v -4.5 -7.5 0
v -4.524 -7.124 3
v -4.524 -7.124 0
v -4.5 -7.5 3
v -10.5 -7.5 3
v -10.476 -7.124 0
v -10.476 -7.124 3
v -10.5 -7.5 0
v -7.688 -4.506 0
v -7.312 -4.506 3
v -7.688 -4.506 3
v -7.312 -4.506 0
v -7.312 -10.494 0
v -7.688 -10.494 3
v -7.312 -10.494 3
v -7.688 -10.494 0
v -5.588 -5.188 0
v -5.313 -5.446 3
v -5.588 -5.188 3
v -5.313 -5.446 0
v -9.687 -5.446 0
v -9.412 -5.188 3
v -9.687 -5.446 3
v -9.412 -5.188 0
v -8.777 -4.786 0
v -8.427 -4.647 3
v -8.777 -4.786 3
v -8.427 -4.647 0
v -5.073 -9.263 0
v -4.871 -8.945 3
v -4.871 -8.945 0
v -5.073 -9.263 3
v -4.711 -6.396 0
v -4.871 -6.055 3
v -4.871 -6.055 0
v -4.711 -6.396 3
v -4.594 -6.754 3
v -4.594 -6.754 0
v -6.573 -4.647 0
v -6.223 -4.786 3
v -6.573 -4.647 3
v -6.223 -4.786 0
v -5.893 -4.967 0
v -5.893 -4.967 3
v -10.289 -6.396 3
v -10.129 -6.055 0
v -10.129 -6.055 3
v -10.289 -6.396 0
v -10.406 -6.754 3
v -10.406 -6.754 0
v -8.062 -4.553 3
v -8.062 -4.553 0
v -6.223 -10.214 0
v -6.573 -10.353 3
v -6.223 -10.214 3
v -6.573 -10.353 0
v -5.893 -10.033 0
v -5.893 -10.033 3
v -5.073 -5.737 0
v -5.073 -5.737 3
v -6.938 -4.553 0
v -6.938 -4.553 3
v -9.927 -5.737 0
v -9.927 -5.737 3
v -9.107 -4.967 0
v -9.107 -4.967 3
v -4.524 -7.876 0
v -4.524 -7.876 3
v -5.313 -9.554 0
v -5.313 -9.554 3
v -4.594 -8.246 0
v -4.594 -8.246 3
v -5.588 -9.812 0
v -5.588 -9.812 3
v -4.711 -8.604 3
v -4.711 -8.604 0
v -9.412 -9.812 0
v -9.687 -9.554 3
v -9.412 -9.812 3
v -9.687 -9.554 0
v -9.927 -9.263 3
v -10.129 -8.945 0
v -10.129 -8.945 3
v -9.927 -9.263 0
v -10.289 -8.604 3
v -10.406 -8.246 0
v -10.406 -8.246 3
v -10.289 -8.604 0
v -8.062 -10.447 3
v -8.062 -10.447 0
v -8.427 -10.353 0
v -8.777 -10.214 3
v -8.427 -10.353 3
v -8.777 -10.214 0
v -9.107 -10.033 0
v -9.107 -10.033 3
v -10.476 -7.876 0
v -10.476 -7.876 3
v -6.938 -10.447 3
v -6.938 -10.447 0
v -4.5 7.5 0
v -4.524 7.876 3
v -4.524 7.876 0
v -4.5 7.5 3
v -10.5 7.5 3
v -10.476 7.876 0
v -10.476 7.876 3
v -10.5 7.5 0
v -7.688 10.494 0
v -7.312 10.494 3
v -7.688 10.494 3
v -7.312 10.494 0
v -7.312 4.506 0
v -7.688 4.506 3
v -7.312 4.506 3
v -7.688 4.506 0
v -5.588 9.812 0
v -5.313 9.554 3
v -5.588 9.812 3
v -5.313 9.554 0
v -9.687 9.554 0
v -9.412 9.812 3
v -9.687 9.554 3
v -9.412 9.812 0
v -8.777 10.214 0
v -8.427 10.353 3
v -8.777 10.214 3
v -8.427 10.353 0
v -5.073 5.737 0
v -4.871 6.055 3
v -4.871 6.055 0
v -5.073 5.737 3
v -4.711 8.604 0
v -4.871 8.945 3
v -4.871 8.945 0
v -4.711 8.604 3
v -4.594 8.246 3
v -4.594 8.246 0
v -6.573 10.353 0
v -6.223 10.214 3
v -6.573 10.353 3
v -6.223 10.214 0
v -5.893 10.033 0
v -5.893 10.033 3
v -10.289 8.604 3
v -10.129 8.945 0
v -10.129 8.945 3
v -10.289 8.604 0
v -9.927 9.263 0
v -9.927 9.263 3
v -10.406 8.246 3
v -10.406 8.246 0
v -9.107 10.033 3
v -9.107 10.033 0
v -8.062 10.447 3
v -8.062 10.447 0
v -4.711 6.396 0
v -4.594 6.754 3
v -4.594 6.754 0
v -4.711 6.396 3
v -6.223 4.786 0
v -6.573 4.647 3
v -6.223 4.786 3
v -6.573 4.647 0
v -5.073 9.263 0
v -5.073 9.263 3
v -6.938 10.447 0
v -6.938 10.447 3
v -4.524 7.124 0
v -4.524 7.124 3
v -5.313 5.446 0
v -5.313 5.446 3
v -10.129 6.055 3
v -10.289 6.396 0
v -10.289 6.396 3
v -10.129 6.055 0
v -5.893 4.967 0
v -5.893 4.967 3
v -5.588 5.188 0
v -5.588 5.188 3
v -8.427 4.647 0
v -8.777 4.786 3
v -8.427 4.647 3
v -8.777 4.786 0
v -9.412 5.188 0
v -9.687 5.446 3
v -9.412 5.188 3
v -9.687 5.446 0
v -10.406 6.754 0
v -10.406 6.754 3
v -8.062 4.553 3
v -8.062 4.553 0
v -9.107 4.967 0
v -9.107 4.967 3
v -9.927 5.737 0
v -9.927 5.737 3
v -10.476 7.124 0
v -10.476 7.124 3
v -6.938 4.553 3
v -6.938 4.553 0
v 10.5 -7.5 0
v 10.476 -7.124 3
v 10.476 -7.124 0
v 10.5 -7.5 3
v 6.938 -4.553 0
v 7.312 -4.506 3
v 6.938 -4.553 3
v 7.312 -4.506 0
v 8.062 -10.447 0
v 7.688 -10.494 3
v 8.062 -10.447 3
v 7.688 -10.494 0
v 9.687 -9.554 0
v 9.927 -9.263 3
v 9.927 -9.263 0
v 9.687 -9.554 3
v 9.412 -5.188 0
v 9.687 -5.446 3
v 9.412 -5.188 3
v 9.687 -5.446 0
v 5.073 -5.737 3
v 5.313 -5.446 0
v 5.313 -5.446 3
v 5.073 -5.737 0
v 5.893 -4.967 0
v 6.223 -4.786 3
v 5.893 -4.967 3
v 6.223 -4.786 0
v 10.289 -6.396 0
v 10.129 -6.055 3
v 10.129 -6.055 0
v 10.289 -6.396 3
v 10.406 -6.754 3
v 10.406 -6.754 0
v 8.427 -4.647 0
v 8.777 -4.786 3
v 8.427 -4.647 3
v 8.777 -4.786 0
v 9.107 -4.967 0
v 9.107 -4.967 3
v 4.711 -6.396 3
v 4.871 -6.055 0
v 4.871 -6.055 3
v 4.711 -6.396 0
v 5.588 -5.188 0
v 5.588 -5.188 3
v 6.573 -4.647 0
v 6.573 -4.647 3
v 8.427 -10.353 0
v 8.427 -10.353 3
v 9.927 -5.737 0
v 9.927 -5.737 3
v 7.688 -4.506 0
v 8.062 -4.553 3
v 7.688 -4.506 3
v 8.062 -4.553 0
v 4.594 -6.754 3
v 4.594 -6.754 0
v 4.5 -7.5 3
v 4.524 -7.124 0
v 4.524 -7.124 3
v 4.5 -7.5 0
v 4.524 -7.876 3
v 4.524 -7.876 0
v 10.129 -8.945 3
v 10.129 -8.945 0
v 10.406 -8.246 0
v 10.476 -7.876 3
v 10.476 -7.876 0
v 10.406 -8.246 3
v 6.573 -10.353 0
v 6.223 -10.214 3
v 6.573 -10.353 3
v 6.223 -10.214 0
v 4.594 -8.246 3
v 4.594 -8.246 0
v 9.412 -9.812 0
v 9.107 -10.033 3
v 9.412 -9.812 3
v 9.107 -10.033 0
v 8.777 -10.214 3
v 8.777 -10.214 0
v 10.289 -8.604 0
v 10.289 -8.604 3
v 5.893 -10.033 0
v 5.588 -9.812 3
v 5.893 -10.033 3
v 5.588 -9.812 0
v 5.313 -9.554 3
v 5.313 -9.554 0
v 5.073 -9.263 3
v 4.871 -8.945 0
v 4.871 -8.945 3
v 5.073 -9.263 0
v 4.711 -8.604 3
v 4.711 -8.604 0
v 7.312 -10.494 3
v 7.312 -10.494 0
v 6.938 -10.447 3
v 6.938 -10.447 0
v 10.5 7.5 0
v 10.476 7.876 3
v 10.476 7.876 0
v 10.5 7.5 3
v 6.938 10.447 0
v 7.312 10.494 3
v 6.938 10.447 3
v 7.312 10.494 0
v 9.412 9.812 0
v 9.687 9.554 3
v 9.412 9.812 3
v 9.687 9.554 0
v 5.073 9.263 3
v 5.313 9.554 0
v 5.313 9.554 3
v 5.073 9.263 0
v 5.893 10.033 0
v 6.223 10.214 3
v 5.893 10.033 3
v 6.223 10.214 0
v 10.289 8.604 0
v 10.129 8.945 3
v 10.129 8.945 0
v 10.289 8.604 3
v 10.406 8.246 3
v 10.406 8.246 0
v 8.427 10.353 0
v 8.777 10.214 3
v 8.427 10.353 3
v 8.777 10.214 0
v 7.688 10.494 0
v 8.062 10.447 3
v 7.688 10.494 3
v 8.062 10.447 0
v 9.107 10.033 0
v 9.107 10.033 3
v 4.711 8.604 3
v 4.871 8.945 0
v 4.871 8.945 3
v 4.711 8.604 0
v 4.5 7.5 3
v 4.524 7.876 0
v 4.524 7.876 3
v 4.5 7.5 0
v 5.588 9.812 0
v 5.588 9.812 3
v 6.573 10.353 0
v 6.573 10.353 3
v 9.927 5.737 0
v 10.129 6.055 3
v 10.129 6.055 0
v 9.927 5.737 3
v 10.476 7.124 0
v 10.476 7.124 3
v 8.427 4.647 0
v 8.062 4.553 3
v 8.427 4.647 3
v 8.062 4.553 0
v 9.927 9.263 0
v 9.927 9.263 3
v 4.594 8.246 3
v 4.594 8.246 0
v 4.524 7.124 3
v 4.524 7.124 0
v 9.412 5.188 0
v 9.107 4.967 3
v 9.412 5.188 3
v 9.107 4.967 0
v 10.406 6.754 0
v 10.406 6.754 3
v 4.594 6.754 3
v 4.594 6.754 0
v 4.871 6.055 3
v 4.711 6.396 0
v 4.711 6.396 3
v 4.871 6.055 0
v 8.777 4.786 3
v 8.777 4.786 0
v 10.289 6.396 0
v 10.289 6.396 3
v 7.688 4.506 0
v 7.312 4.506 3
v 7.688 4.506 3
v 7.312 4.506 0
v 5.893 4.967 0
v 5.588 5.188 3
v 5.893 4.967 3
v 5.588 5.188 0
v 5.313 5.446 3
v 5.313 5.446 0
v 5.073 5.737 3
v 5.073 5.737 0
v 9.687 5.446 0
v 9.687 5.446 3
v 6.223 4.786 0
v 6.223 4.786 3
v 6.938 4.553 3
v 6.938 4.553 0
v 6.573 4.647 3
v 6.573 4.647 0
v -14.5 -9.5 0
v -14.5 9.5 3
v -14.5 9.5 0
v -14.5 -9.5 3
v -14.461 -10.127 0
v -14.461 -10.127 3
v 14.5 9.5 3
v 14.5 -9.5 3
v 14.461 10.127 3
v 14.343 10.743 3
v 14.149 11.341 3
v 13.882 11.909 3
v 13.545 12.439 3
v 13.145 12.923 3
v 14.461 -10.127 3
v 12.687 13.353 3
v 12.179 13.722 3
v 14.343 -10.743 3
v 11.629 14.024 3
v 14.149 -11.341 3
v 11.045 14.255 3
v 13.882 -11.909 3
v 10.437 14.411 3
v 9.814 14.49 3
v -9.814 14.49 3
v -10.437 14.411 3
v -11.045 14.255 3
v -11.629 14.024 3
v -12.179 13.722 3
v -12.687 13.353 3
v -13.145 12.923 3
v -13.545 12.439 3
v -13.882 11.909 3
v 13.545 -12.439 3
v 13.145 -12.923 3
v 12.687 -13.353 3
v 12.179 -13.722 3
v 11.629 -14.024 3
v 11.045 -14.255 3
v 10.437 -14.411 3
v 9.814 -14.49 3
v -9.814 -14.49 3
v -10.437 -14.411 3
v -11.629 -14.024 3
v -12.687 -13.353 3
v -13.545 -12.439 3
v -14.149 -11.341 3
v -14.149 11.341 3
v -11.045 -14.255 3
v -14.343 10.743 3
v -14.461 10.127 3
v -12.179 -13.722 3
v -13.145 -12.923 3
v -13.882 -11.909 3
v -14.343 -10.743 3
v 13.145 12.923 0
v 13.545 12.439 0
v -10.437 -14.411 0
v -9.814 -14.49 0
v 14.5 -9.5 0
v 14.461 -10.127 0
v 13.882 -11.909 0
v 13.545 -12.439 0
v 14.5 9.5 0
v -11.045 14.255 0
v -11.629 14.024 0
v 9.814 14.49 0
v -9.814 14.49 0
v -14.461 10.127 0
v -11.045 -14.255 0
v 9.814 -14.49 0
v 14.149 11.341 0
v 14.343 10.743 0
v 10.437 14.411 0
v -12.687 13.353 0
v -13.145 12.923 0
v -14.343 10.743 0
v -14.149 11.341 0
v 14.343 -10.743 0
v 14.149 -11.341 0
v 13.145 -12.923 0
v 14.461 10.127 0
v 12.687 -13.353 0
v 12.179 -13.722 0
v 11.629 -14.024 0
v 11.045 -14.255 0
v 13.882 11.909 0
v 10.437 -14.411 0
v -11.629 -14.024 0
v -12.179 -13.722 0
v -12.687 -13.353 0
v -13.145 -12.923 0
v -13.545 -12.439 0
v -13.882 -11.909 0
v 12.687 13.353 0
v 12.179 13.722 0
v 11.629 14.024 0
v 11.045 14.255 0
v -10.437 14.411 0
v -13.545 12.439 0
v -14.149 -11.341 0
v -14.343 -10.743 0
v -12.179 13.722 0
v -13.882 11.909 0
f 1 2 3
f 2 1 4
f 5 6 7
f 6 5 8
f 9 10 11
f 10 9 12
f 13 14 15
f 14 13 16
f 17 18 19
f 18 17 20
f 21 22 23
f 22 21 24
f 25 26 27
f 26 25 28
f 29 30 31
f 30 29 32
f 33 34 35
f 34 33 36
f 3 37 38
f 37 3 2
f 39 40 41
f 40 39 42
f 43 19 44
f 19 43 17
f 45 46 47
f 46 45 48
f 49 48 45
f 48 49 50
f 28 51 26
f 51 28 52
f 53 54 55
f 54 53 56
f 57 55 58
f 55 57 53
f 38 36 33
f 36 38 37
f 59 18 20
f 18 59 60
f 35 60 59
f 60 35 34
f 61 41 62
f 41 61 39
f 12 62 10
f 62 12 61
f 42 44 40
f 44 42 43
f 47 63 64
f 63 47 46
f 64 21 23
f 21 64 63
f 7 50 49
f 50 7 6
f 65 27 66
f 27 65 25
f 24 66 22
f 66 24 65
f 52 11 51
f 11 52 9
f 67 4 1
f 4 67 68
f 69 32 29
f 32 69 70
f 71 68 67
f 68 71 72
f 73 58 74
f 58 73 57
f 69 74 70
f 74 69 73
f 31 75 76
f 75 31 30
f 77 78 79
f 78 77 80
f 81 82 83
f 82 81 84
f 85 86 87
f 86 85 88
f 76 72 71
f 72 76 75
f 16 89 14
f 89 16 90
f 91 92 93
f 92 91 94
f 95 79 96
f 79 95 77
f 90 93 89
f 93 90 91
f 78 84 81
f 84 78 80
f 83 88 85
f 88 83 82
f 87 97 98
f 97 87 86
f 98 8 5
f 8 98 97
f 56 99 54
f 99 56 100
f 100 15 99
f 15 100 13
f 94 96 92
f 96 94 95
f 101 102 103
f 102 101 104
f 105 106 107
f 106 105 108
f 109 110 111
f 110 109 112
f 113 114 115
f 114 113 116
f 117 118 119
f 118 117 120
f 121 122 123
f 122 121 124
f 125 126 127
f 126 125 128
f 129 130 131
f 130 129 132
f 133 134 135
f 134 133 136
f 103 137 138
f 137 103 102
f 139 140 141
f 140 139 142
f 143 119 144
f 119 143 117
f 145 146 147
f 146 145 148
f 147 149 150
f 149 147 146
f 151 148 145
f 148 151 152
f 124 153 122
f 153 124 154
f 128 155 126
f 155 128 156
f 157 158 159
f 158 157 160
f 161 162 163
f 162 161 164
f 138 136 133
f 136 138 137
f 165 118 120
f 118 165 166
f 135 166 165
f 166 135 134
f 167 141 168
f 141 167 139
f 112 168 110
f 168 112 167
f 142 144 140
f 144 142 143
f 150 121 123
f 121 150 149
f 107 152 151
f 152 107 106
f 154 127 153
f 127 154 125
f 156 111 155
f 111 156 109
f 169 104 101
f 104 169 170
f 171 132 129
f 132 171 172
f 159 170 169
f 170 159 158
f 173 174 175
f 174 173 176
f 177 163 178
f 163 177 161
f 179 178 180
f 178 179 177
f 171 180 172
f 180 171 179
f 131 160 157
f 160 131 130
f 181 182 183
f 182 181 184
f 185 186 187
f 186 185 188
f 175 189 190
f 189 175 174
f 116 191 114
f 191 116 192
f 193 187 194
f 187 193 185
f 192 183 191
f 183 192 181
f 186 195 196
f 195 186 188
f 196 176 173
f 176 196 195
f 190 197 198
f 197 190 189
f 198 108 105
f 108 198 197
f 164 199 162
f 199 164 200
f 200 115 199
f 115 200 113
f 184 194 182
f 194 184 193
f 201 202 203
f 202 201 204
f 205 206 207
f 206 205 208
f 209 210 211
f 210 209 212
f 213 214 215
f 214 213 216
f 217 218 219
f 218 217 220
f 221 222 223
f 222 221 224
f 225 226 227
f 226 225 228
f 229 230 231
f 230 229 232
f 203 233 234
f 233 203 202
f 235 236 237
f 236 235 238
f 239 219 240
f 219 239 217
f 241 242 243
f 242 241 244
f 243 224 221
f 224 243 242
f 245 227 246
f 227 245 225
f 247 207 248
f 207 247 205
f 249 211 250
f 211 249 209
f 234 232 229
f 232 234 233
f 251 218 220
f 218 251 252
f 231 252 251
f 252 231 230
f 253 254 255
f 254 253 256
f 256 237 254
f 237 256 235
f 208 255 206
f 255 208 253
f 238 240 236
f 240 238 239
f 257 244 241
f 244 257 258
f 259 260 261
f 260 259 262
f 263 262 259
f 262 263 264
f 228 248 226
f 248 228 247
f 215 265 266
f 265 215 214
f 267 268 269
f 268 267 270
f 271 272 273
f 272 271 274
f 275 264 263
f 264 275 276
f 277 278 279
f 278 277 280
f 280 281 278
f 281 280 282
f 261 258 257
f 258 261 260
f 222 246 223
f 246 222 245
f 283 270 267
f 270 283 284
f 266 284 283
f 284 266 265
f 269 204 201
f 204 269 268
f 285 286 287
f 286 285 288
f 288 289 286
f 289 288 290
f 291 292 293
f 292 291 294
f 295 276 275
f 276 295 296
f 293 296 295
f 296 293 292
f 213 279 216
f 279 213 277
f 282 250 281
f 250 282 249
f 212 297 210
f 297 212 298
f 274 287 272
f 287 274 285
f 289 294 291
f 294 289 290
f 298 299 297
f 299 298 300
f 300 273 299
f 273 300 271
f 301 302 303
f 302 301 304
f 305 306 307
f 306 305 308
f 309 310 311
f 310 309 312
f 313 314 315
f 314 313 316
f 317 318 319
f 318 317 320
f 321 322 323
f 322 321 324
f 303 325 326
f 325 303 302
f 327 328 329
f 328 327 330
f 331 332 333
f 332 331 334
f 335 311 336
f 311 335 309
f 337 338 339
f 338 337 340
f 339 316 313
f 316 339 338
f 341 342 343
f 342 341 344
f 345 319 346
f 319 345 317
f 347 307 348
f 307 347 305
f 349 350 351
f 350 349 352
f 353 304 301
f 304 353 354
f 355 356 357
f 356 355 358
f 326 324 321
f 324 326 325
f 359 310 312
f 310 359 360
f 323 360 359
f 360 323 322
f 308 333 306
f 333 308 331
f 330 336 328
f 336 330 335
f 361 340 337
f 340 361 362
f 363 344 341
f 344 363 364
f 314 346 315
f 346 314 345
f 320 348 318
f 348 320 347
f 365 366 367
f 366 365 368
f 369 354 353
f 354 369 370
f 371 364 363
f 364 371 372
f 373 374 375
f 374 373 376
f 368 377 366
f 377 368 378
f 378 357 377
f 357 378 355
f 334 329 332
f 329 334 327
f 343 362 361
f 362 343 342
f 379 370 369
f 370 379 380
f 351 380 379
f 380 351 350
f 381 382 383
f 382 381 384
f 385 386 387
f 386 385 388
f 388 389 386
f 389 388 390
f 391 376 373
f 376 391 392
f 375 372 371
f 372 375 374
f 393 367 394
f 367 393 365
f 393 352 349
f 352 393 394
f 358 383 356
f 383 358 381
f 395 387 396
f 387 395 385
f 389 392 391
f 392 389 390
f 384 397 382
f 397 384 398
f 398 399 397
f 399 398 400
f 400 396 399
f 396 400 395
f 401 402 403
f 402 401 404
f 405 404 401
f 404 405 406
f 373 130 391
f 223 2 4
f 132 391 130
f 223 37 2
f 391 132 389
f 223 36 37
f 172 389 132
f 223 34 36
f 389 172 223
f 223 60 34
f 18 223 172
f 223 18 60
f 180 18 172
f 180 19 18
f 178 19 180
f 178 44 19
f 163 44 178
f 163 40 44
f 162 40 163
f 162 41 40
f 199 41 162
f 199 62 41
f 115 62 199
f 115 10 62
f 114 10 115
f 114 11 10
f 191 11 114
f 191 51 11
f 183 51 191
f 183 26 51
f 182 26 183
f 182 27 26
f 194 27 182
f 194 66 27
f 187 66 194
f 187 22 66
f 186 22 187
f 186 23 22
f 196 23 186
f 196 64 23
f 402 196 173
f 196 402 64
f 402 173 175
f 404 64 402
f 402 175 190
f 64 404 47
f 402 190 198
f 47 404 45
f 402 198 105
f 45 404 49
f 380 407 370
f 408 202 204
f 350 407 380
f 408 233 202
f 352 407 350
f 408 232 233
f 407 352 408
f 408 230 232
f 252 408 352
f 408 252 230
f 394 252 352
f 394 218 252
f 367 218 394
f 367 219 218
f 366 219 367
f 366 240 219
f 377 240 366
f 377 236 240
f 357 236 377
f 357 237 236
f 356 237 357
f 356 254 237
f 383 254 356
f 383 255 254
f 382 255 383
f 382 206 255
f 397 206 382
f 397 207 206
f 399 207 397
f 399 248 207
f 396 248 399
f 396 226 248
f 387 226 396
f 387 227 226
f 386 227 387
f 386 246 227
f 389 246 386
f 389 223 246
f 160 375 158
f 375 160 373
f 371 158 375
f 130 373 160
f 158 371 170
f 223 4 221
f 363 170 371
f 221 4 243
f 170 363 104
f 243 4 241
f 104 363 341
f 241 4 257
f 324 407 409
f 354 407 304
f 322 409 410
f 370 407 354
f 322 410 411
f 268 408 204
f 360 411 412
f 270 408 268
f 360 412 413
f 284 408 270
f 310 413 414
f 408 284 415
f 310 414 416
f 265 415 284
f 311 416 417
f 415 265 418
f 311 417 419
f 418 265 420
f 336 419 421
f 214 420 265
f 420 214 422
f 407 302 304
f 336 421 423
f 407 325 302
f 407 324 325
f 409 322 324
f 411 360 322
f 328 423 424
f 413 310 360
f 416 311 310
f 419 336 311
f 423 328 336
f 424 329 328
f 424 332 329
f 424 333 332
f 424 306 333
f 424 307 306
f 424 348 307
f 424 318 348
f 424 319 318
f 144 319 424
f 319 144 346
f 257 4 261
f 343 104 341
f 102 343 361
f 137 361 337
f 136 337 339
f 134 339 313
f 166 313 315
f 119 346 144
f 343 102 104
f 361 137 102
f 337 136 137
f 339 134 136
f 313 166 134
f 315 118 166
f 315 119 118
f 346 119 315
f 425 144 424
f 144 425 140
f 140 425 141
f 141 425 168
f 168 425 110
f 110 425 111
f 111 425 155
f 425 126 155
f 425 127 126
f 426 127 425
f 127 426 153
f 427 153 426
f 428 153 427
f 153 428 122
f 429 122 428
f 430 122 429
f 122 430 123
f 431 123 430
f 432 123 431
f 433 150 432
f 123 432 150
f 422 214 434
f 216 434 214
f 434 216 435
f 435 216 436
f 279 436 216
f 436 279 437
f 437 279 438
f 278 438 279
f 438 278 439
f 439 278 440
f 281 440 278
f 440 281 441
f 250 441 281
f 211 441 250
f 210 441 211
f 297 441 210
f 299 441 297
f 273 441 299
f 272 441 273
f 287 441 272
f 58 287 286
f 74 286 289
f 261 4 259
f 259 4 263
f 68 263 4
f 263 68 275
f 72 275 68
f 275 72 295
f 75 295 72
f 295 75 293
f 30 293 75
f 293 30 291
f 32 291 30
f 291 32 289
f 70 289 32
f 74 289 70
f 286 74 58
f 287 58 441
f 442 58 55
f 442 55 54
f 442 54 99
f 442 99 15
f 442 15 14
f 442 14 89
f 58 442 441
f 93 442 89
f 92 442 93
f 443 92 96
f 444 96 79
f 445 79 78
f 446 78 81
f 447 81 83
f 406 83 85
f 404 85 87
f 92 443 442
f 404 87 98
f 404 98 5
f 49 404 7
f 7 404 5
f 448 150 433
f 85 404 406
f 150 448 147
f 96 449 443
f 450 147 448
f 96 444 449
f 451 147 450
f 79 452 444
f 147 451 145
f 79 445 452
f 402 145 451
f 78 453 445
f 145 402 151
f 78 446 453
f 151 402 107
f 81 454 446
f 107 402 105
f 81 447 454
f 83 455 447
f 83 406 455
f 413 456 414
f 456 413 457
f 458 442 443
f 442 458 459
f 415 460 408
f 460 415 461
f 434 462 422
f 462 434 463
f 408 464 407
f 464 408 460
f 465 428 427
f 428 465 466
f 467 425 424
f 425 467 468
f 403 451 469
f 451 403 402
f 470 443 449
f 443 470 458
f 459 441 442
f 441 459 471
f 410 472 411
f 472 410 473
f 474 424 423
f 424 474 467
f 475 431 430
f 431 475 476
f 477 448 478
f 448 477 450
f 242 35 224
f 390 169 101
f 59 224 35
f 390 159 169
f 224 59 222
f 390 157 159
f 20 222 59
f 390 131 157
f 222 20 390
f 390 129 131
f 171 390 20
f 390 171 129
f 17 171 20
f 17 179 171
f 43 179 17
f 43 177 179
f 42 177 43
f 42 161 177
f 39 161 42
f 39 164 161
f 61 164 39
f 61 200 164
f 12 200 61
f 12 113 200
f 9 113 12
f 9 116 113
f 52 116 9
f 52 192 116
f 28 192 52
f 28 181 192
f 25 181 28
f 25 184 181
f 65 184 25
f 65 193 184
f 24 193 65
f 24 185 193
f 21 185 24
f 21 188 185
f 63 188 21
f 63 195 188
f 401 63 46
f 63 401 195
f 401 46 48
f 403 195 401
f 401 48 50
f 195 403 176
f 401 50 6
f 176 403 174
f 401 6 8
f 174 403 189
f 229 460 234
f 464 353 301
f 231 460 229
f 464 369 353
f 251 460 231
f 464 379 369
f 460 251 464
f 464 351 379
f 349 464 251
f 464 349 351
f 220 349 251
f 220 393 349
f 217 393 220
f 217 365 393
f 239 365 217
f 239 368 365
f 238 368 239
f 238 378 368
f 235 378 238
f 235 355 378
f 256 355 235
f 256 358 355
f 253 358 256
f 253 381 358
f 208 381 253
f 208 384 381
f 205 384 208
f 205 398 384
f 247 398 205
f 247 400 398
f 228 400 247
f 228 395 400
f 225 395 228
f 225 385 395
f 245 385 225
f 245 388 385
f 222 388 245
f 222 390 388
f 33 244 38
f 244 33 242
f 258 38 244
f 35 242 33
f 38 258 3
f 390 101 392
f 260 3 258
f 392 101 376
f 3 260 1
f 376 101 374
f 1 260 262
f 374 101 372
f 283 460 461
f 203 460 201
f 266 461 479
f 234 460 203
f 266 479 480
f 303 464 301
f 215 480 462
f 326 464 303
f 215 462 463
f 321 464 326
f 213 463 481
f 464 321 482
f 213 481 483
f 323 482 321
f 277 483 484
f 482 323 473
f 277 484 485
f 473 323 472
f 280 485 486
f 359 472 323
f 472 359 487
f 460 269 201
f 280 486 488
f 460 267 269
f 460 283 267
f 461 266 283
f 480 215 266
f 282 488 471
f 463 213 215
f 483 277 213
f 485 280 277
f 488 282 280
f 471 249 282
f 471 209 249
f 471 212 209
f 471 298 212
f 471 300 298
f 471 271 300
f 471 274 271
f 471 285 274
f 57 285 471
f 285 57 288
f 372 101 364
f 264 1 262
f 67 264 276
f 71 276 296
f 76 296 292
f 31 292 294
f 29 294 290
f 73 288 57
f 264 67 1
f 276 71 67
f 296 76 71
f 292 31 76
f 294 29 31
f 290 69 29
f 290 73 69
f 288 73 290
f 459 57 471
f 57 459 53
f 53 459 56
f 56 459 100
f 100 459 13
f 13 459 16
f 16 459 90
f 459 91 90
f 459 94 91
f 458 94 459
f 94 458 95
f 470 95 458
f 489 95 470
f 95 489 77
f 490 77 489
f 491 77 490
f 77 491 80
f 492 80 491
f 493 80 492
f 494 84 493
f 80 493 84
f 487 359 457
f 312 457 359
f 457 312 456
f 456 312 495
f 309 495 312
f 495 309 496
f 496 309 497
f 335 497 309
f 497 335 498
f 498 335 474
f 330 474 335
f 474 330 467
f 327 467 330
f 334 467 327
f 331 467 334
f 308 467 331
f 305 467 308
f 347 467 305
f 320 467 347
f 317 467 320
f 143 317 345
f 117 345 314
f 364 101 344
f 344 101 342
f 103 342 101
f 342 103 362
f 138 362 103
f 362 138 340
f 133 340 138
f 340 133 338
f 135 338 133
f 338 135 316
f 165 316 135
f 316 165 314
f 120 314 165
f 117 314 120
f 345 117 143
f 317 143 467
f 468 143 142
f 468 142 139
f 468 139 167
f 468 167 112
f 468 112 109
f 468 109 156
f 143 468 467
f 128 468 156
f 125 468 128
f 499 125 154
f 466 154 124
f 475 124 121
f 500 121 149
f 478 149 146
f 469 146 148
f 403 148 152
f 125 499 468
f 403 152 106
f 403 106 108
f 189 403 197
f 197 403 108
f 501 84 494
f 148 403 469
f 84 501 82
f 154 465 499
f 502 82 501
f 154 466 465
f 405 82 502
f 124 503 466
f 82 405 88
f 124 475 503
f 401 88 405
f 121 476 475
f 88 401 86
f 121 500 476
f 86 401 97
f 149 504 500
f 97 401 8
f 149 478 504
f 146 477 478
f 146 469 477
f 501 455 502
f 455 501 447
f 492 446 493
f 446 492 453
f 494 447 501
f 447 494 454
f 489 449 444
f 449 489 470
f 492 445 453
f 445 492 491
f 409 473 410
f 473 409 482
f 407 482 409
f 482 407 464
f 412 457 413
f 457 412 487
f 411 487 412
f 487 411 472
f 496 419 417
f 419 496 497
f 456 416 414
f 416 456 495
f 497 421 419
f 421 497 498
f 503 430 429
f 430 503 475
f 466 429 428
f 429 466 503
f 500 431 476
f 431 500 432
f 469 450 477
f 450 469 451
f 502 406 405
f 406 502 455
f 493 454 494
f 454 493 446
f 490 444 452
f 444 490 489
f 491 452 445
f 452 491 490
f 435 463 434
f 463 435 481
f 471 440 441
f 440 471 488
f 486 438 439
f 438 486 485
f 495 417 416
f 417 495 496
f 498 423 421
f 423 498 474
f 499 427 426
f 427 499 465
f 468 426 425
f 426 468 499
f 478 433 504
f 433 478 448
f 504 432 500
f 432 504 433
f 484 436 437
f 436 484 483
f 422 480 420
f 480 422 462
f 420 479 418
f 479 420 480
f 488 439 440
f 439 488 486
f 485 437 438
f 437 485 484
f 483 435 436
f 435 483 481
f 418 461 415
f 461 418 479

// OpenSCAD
$fn = 50;


difference() {
	union() {
		hull() {
			translate(v = [-9.5000000000, 9.5000000000, 0]) {
				cylinder(h = 3, r = 5);
			}
			translate(v = [9.5000000000, 9.5000000000, 0]) {
				cylinder(h = 3, r = 5);
			}
			translate(v = [-9.5000000000, -9.5000000000, 0]) {
				cylinder(h = 3, r = 5);
			}
			translate(v = [9.5000000000, -9.5000000000, 0]) {
				cylinder(h = 3, r = 5);
			}
		}
	}
	union() {
		translate(v = [-7.5000000000, -7.5000000000, -100.0000000000]) {
			cylinder(h = 200, r = 3.0000000000);
		}
		translate(v = [-7.5000000000, 7.5000000000, -100.0000000000]) {
			cylinder(h = 200, r = 3.0000000000);
		}
		translate(v = [7.5000000000, -7.5000000000, -100.0000000000]) {
			cylinder(h = 200, r = 3.0000000000);
		}
		translate(v = [7.5000000000, 7.5000000000, -100.0000000000]) {
			cylinder(h = 200, r = 3.0000000000);
		}
	}
}
